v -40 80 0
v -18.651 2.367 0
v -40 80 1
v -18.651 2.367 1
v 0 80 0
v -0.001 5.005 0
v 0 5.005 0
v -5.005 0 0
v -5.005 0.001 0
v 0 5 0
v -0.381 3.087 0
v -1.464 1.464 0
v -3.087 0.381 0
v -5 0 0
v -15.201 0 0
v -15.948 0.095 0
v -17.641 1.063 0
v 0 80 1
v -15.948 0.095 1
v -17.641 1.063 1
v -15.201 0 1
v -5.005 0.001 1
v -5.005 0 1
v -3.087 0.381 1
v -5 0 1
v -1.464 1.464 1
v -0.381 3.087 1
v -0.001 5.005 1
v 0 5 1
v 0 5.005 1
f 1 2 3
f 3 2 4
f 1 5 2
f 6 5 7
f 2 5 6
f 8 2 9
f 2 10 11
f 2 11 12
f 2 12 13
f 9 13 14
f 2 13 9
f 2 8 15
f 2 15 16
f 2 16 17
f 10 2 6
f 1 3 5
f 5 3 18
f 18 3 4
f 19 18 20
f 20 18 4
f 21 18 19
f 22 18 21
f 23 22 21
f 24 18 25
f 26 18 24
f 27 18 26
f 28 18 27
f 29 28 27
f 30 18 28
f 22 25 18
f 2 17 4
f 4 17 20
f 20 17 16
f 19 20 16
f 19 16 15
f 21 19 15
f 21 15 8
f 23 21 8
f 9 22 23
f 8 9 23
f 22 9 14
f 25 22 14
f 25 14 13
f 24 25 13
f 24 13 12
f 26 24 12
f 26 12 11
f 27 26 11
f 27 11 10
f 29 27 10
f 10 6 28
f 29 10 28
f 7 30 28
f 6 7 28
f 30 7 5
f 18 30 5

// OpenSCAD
module wedge(len,dep,ht,wht){

rotate([0,-90,0])polyhedron(
        points=[ [0,0,0],[0,dep,0],[0,dep,wht],
                [0,0,ht],[len,dep,0],[len,dep,wht],
                [len,0,ht],[len,0,0] ],
        triangles= [
                [0,1,2],[2,3,0], // R-side
                [4,5,1],[5,2,1], // Front vertical
                [2,5,6],[6,3,2], // Front slant
                [7,5,4],[7,6,5], // L side
                [0,3,7],[3,6,7], // Back vertical
                [0,7,1],[1,7,4]  // Bottom
                ]);
} 

module fillet(r, h) {
    translate([r / 2, r / 2, 0])

        difference() {
            cube([r + 0.01, r + 0.01, h], center = true);

            translate([r/2, r/2, 0])
                cylinder(r = r, h = h + 1, center = true);

        }
}


module main()
{
	difference()
	{
		wedge(1,80,18,40);
		#translate([0,0,0])rotate([0,0,90])fillet(5, 10);
		#translate([-19,-0.5,0])rotate([0,0,4])fillet(5, 10);
	}
}
main();
